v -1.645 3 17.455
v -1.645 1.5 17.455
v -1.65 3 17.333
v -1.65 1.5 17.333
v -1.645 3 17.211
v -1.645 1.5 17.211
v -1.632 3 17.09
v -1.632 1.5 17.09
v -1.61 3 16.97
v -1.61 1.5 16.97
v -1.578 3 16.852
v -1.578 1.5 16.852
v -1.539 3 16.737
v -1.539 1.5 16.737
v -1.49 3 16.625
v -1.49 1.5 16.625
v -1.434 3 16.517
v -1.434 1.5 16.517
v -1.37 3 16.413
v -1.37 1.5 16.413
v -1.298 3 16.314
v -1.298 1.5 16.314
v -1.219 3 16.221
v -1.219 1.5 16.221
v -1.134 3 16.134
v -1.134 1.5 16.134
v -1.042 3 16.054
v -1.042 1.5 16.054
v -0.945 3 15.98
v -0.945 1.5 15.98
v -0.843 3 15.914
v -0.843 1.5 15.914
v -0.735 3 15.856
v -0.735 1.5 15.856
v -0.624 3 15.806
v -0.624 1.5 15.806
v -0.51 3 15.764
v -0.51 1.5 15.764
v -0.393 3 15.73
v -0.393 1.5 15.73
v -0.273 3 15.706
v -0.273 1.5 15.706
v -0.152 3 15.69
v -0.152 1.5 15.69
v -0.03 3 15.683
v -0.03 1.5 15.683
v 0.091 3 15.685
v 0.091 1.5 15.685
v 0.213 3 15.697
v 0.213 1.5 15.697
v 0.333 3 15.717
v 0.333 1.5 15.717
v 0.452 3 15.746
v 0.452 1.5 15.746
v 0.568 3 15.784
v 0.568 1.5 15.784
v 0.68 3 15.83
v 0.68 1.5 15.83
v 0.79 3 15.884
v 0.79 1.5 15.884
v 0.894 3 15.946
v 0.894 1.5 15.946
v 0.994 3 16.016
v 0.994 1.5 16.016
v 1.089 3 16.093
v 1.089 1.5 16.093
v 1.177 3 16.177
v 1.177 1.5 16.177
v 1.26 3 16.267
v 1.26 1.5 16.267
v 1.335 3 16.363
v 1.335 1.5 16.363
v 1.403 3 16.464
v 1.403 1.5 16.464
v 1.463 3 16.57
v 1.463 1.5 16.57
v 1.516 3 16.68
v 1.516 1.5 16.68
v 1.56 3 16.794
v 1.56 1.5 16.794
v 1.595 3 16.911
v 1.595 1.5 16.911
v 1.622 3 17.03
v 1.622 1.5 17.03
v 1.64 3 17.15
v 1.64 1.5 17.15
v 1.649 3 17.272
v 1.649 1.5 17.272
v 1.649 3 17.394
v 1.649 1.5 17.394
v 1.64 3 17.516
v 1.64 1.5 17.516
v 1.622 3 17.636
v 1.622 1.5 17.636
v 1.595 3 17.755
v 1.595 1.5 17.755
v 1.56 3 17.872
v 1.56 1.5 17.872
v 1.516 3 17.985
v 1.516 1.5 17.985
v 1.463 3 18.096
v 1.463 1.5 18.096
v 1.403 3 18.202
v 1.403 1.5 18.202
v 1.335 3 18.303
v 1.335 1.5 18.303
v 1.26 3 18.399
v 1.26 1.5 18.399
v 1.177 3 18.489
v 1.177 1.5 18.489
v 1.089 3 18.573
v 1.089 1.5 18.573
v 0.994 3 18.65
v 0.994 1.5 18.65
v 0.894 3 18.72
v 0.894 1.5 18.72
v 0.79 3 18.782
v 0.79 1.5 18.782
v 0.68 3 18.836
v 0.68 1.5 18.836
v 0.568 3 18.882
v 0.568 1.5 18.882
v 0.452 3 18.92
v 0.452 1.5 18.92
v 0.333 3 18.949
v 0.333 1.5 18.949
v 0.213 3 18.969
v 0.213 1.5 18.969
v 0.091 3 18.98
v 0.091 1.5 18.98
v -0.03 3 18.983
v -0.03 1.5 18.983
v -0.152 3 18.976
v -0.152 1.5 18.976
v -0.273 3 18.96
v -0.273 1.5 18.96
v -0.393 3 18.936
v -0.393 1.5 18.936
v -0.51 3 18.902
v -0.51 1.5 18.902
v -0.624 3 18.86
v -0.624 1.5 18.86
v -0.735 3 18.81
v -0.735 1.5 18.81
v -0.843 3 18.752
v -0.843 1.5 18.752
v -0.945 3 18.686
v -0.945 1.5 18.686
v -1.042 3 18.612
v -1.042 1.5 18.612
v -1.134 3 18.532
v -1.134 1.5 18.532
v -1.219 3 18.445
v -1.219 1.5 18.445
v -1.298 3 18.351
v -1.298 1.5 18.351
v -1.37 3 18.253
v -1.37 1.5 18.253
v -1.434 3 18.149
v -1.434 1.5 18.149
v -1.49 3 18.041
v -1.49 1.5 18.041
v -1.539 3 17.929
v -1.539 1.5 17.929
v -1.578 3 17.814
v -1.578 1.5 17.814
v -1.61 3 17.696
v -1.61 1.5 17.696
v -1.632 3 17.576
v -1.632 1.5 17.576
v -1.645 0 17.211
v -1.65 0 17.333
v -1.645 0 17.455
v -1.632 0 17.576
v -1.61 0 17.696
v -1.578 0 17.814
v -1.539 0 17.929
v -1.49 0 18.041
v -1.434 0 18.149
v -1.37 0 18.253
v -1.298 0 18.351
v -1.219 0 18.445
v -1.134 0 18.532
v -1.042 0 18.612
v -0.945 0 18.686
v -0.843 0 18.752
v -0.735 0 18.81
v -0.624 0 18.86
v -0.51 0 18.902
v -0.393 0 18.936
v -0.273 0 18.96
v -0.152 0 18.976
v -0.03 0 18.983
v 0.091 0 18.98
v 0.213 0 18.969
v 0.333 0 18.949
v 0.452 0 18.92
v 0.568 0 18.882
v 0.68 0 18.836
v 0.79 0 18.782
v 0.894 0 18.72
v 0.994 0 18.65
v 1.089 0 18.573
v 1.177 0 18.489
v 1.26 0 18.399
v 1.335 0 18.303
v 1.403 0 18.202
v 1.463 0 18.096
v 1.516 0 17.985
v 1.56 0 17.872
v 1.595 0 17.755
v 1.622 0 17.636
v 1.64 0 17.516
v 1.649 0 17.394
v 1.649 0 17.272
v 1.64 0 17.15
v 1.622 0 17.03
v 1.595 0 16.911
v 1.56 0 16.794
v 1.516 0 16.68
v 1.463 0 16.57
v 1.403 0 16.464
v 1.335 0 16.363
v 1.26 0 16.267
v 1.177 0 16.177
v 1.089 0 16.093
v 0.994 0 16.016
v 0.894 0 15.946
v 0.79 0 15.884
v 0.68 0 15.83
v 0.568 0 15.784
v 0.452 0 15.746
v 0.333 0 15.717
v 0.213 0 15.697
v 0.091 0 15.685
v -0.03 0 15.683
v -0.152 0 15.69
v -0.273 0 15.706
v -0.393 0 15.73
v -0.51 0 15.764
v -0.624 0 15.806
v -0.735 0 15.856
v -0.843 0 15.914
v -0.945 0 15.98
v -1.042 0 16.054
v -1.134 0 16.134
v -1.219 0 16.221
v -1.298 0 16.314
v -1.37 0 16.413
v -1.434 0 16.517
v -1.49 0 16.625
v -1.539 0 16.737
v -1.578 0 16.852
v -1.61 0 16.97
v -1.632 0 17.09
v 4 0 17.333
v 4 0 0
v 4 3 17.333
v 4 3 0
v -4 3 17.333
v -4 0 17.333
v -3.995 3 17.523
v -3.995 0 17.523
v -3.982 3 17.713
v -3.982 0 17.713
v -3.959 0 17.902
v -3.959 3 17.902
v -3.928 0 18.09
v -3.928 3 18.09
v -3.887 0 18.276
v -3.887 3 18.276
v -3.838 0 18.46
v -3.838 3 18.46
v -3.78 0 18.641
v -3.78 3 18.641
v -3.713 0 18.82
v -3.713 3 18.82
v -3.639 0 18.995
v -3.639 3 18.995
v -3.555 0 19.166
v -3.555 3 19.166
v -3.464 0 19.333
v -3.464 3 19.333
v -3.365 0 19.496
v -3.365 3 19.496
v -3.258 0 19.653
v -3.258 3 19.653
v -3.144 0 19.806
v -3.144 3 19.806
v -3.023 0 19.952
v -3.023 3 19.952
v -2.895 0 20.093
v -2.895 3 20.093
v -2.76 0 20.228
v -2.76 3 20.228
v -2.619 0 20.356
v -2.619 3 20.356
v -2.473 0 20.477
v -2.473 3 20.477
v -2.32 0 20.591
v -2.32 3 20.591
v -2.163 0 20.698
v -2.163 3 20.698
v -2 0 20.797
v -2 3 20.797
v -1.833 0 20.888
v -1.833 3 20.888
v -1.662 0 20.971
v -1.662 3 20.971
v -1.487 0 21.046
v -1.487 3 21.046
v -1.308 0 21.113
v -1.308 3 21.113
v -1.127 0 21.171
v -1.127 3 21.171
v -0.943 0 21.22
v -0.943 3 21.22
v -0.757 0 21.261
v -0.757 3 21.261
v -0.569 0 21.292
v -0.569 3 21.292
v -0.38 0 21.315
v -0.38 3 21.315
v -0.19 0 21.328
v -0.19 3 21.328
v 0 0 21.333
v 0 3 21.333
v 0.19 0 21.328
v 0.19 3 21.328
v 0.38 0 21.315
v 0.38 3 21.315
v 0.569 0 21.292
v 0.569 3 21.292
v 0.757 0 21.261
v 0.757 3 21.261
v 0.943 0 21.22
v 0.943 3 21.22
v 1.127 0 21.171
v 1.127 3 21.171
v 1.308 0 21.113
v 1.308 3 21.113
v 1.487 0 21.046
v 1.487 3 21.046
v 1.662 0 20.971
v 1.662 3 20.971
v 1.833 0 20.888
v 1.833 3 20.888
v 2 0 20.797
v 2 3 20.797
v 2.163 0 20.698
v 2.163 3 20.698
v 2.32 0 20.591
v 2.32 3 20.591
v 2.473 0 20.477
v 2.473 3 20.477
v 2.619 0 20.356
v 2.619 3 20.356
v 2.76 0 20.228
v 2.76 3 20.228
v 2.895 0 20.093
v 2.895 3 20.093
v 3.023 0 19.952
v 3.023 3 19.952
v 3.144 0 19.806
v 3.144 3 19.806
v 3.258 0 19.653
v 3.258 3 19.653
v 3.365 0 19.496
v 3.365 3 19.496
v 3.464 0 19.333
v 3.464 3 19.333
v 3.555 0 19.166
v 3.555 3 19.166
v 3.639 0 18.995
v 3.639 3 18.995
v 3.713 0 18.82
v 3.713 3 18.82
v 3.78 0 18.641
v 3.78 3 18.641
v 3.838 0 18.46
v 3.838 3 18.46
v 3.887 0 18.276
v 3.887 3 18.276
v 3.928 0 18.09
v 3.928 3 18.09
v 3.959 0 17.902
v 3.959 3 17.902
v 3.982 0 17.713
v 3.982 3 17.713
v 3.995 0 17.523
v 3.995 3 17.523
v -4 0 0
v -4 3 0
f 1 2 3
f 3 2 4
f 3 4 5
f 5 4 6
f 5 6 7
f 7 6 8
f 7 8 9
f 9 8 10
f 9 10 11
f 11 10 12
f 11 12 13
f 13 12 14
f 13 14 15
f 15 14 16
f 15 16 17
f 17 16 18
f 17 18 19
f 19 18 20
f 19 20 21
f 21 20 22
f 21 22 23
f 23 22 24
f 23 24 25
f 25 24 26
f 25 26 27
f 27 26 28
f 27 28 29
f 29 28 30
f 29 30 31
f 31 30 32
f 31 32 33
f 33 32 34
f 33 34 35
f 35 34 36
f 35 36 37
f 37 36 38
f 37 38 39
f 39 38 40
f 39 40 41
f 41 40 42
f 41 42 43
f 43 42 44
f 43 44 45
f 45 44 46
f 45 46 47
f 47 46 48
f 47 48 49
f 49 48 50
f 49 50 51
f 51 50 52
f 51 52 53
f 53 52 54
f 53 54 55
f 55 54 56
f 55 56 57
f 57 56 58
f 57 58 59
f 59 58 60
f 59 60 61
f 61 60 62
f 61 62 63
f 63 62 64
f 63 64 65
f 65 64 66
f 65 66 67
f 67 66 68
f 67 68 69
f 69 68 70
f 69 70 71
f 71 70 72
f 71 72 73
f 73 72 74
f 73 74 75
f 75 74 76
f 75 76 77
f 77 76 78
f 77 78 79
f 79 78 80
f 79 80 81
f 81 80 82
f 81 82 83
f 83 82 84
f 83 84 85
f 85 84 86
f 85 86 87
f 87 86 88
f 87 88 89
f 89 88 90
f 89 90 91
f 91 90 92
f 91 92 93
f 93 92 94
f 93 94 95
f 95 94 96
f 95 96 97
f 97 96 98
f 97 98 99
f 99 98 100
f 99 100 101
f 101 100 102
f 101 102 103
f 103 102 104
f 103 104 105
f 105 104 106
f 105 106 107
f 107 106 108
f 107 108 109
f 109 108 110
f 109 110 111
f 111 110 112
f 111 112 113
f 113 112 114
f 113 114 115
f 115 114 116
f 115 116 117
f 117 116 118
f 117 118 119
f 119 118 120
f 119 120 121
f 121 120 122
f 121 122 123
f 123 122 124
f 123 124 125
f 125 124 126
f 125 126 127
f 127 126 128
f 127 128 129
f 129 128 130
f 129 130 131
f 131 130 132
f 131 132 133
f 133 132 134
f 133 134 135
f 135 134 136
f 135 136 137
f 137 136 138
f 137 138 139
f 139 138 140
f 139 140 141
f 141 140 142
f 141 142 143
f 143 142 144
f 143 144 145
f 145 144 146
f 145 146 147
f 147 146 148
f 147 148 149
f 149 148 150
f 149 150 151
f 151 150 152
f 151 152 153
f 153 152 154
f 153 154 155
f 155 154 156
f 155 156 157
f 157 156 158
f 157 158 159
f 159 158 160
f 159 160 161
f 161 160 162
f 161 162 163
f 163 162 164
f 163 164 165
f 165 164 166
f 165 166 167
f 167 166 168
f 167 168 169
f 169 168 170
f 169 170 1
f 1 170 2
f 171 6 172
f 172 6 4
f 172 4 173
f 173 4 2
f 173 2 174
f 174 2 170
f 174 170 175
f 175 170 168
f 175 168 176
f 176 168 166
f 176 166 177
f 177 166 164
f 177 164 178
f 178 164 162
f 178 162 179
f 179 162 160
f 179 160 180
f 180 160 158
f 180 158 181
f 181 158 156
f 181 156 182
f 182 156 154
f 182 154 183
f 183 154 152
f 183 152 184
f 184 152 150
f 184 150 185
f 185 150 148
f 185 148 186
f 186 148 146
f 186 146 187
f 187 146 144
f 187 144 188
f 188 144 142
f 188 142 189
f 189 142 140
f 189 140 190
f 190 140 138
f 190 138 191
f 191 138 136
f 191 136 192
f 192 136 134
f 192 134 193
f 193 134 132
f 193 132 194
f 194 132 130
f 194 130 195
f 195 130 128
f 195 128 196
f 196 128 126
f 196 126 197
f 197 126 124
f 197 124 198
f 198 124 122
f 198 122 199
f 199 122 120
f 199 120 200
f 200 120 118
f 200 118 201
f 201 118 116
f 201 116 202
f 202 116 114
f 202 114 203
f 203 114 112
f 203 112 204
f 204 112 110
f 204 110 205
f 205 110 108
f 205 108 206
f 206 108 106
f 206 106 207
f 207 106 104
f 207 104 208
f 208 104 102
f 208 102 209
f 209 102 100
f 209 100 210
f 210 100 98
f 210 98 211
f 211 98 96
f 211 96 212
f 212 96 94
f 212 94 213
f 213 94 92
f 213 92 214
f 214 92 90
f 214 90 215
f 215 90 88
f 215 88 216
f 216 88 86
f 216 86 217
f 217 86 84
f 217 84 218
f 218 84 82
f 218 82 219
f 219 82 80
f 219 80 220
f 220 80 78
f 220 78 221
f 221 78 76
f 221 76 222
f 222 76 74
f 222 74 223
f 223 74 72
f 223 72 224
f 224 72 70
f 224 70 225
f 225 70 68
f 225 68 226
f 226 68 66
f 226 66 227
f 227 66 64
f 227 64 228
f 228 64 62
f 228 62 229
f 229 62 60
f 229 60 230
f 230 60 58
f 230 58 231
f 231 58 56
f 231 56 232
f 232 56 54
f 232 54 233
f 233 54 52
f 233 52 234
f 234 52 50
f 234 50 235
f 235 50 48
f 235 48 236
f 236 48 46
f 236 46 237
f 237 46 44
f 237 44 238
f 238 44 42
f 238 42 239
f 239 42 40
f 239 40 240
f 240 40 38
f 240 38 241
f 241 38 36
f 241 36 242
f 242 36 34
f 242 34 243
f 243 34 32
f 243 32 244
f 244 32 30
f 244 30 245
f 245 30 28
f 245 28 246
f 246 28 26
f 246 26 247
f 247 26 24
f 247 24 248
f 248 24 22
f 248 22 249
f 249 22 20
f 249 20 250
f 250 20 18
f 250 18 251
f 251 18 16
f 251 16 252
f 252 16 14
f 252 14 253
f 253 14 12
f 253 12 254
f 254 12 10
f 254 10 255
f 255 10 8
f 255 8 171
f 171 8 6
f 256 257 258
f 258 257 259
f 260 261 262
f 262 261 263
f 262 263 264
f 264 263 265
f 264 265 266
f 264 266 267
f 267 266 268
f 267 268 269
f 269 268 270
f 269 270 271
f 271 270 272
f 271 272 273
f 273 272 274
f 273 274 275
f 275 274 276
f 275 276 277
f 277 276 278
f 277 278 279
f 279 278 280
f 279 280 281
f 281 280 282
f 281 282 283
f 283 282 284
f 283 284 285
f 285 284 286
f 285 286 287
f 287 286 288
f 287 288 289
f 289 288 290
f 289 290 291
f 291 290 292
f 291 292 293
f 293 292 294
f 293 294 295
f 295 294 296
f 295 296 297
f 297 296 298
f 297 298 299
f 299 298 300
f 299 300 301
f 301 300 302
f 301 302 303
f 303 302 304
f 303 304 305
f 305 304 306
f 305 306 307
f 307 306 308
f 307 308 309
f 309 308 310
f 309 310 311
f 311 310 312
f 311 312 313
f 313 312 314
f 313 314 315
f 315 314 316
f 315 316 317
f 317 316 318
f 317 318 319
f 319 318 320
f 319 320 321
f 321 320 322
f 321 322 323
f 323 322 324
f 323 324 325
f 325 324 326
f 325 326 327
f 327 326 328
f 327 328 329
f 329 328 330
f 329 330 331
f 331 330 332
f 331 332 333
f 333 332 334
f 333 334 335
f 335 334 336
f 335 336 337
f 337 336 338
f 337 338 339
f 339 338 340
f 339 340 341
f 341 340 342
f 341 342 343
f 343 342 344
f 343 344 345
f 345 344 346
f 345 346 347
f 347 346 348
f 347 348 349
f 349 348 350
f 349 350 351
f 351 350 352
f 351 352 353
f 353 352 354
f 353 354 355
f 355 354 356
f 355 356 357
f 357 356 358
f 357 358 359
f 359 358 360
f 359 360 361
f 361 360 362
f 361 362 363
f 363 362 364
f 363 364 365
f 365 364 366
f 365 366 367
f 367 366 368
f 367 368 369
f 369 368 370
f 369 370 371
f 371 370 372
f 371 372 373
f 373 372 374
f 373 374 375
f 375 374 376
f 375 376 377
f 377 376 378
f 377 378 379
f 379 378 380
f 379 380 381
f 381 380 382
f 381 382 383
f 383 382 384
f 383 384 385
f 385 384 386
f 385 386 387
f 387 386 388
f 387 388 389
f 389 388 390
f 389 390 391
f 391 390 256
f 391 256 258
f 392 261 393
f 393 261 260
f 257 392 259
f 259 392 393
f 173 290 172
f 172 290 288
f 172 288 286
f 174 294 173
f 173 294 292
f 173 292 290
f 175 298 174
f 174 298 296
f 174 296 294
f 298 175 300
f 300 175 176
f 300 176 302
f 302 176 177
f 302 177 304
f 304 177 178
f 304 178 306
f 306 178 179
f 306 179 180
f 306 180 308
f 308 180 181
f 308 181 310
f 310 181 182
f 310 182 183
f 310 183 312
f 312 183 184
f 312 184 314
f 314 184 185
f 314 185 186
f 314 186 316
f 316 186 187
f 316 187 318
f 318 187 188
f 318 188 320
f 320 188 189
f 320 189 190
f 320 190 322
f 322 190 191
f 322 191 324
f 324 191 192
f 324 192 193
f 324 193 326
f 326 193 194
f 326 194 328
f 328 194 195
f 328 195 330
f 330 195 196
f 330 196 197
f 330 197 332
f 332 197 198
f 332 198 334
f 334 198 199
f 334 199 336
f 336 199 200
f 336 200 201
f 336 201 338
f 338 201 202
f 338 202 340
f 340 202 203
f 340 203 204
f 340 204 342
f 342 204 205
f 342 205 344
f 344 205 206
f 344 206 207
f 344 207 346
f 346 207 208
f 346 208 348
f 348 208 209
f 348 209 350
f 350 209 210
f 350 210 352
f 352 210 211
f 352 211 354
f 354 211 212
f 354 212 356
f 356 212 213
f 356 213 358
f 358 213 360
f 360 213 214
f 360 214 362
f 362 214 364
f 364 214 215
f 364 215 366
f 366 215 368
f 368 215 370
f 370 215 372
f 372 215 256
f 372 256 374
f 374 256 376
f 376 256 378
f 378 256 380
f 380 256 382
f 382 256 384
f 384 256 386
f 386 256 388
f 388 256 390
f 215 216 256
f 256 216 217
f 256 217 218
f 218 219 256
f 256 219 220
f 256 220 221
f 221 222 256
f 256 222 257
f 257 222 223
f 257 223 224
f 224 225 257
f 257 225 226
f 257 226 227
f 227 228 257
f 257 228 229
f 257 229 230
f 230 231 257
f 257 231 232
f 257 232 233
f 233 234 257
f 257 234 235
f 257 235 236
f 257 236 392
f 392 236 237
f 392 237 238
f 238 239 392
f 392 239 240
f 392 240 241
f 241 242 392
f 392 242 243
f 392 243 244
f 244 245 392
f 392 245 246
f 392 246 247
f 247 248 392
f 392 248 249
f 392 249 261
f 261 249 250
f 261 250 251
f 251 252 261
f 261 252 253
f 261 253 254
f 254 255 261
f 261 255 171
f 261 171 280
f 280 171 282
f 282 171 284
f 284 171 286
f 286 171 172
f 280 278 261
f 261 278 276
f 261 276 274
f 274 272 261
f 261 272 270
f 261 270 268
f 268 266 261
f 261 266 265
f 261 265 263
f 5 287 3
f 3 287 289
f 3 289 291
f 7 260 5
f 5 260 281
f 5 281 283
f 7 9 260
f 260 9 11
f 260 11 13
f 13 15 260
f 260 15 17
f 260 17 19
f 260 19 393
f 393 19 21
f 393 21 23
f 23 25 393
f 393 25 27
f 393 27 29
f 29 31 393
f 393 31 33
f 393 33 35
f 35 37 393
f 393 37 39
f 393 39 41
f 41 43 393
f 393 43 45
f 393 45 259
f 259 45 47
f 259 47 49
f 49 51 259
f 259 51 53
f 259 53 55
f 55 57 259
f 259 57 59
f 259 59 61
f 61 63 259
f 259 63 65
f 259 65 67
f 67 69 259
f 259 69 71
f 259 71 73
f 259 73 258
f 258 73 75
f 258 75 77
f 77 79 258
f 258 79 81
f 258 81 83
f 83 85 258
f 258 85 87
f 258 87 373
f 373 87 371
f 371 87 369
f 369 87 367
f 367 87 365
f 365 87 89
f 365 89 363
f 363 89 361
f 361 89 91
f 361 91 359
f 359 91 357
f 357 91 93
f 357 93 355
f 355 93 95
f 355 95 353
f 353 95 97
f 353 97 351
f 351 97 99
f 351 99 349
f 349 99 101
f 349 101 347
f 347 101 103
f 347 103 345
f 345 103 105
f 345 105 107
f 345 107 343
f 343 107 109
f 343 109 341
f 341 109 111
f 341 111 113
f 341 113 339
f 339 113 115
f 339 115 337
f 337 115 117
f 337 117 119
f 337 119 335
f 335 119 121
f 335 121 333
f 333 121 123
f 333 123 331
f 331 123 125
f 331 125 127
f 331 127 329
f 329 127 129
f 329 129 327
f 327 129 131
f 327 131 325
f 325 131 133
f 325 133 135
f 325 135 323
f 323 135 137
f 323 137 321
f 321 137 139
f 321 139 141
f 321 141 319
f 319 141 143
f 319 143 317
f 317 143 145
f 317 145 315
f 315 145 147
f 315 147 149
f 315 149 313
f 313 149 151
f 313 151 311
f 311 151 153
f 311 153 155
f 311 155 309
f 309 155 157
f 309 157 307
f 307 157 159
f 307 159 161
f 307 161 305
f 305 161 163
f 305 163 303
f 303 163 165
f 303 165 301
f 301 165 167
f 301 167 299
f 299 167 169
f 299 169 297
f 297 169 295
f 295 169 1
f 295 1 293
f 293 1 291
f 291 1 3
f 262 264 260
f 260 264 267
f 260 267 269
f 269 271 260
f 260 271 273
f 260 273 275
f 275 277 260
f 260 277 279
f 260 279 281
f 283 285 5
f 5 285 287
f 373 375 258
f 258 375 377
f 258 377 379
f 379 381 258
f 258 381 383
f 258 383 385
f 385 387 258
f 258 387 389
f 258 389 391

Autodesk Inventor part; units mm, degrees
ref_plane "YZ Plane" through (0, 0, 0) normal (1, 0, 0) x (0, 1, 0)
ref_plane "XZ Plane" through (0, 0, 0) normal (0, 1, 0) x (-1, 0, 0)
ref_plane "XY Plane" through (0, 0, 0) normal (0, 0, 1) x (1, 0, 0)
sketch "Sketch1" plane through (0, 0, 0) normal (0, 1, 0) x (-1, 0, 0)
  line L0 (4, 0) -> (-4, 0)
  line L1 (4, 0) -> (4, 12)
  line L2 (-4, 0) -> (-4, 12)
  arc A0 (4, 17.3329) -> (-4, 17.3329) centre (0, 17.3329) ccw
  line L3 (4, 17.3329) -> (4, 12)
  line L4 (-4, 17.3329) -> (-4, 12)
  circle A1 centre (0, 17.3329) radius 1.65
  point P0 (0, 0)
  point P1 (0, 0)
  dimension "d0" = 8
  dimension "d1" = 12
  dimension "d9" = 8
  dimension "d12" = 3.3
extrude "Extrusion1" add sketch "Sketch1" along normal blind 3
